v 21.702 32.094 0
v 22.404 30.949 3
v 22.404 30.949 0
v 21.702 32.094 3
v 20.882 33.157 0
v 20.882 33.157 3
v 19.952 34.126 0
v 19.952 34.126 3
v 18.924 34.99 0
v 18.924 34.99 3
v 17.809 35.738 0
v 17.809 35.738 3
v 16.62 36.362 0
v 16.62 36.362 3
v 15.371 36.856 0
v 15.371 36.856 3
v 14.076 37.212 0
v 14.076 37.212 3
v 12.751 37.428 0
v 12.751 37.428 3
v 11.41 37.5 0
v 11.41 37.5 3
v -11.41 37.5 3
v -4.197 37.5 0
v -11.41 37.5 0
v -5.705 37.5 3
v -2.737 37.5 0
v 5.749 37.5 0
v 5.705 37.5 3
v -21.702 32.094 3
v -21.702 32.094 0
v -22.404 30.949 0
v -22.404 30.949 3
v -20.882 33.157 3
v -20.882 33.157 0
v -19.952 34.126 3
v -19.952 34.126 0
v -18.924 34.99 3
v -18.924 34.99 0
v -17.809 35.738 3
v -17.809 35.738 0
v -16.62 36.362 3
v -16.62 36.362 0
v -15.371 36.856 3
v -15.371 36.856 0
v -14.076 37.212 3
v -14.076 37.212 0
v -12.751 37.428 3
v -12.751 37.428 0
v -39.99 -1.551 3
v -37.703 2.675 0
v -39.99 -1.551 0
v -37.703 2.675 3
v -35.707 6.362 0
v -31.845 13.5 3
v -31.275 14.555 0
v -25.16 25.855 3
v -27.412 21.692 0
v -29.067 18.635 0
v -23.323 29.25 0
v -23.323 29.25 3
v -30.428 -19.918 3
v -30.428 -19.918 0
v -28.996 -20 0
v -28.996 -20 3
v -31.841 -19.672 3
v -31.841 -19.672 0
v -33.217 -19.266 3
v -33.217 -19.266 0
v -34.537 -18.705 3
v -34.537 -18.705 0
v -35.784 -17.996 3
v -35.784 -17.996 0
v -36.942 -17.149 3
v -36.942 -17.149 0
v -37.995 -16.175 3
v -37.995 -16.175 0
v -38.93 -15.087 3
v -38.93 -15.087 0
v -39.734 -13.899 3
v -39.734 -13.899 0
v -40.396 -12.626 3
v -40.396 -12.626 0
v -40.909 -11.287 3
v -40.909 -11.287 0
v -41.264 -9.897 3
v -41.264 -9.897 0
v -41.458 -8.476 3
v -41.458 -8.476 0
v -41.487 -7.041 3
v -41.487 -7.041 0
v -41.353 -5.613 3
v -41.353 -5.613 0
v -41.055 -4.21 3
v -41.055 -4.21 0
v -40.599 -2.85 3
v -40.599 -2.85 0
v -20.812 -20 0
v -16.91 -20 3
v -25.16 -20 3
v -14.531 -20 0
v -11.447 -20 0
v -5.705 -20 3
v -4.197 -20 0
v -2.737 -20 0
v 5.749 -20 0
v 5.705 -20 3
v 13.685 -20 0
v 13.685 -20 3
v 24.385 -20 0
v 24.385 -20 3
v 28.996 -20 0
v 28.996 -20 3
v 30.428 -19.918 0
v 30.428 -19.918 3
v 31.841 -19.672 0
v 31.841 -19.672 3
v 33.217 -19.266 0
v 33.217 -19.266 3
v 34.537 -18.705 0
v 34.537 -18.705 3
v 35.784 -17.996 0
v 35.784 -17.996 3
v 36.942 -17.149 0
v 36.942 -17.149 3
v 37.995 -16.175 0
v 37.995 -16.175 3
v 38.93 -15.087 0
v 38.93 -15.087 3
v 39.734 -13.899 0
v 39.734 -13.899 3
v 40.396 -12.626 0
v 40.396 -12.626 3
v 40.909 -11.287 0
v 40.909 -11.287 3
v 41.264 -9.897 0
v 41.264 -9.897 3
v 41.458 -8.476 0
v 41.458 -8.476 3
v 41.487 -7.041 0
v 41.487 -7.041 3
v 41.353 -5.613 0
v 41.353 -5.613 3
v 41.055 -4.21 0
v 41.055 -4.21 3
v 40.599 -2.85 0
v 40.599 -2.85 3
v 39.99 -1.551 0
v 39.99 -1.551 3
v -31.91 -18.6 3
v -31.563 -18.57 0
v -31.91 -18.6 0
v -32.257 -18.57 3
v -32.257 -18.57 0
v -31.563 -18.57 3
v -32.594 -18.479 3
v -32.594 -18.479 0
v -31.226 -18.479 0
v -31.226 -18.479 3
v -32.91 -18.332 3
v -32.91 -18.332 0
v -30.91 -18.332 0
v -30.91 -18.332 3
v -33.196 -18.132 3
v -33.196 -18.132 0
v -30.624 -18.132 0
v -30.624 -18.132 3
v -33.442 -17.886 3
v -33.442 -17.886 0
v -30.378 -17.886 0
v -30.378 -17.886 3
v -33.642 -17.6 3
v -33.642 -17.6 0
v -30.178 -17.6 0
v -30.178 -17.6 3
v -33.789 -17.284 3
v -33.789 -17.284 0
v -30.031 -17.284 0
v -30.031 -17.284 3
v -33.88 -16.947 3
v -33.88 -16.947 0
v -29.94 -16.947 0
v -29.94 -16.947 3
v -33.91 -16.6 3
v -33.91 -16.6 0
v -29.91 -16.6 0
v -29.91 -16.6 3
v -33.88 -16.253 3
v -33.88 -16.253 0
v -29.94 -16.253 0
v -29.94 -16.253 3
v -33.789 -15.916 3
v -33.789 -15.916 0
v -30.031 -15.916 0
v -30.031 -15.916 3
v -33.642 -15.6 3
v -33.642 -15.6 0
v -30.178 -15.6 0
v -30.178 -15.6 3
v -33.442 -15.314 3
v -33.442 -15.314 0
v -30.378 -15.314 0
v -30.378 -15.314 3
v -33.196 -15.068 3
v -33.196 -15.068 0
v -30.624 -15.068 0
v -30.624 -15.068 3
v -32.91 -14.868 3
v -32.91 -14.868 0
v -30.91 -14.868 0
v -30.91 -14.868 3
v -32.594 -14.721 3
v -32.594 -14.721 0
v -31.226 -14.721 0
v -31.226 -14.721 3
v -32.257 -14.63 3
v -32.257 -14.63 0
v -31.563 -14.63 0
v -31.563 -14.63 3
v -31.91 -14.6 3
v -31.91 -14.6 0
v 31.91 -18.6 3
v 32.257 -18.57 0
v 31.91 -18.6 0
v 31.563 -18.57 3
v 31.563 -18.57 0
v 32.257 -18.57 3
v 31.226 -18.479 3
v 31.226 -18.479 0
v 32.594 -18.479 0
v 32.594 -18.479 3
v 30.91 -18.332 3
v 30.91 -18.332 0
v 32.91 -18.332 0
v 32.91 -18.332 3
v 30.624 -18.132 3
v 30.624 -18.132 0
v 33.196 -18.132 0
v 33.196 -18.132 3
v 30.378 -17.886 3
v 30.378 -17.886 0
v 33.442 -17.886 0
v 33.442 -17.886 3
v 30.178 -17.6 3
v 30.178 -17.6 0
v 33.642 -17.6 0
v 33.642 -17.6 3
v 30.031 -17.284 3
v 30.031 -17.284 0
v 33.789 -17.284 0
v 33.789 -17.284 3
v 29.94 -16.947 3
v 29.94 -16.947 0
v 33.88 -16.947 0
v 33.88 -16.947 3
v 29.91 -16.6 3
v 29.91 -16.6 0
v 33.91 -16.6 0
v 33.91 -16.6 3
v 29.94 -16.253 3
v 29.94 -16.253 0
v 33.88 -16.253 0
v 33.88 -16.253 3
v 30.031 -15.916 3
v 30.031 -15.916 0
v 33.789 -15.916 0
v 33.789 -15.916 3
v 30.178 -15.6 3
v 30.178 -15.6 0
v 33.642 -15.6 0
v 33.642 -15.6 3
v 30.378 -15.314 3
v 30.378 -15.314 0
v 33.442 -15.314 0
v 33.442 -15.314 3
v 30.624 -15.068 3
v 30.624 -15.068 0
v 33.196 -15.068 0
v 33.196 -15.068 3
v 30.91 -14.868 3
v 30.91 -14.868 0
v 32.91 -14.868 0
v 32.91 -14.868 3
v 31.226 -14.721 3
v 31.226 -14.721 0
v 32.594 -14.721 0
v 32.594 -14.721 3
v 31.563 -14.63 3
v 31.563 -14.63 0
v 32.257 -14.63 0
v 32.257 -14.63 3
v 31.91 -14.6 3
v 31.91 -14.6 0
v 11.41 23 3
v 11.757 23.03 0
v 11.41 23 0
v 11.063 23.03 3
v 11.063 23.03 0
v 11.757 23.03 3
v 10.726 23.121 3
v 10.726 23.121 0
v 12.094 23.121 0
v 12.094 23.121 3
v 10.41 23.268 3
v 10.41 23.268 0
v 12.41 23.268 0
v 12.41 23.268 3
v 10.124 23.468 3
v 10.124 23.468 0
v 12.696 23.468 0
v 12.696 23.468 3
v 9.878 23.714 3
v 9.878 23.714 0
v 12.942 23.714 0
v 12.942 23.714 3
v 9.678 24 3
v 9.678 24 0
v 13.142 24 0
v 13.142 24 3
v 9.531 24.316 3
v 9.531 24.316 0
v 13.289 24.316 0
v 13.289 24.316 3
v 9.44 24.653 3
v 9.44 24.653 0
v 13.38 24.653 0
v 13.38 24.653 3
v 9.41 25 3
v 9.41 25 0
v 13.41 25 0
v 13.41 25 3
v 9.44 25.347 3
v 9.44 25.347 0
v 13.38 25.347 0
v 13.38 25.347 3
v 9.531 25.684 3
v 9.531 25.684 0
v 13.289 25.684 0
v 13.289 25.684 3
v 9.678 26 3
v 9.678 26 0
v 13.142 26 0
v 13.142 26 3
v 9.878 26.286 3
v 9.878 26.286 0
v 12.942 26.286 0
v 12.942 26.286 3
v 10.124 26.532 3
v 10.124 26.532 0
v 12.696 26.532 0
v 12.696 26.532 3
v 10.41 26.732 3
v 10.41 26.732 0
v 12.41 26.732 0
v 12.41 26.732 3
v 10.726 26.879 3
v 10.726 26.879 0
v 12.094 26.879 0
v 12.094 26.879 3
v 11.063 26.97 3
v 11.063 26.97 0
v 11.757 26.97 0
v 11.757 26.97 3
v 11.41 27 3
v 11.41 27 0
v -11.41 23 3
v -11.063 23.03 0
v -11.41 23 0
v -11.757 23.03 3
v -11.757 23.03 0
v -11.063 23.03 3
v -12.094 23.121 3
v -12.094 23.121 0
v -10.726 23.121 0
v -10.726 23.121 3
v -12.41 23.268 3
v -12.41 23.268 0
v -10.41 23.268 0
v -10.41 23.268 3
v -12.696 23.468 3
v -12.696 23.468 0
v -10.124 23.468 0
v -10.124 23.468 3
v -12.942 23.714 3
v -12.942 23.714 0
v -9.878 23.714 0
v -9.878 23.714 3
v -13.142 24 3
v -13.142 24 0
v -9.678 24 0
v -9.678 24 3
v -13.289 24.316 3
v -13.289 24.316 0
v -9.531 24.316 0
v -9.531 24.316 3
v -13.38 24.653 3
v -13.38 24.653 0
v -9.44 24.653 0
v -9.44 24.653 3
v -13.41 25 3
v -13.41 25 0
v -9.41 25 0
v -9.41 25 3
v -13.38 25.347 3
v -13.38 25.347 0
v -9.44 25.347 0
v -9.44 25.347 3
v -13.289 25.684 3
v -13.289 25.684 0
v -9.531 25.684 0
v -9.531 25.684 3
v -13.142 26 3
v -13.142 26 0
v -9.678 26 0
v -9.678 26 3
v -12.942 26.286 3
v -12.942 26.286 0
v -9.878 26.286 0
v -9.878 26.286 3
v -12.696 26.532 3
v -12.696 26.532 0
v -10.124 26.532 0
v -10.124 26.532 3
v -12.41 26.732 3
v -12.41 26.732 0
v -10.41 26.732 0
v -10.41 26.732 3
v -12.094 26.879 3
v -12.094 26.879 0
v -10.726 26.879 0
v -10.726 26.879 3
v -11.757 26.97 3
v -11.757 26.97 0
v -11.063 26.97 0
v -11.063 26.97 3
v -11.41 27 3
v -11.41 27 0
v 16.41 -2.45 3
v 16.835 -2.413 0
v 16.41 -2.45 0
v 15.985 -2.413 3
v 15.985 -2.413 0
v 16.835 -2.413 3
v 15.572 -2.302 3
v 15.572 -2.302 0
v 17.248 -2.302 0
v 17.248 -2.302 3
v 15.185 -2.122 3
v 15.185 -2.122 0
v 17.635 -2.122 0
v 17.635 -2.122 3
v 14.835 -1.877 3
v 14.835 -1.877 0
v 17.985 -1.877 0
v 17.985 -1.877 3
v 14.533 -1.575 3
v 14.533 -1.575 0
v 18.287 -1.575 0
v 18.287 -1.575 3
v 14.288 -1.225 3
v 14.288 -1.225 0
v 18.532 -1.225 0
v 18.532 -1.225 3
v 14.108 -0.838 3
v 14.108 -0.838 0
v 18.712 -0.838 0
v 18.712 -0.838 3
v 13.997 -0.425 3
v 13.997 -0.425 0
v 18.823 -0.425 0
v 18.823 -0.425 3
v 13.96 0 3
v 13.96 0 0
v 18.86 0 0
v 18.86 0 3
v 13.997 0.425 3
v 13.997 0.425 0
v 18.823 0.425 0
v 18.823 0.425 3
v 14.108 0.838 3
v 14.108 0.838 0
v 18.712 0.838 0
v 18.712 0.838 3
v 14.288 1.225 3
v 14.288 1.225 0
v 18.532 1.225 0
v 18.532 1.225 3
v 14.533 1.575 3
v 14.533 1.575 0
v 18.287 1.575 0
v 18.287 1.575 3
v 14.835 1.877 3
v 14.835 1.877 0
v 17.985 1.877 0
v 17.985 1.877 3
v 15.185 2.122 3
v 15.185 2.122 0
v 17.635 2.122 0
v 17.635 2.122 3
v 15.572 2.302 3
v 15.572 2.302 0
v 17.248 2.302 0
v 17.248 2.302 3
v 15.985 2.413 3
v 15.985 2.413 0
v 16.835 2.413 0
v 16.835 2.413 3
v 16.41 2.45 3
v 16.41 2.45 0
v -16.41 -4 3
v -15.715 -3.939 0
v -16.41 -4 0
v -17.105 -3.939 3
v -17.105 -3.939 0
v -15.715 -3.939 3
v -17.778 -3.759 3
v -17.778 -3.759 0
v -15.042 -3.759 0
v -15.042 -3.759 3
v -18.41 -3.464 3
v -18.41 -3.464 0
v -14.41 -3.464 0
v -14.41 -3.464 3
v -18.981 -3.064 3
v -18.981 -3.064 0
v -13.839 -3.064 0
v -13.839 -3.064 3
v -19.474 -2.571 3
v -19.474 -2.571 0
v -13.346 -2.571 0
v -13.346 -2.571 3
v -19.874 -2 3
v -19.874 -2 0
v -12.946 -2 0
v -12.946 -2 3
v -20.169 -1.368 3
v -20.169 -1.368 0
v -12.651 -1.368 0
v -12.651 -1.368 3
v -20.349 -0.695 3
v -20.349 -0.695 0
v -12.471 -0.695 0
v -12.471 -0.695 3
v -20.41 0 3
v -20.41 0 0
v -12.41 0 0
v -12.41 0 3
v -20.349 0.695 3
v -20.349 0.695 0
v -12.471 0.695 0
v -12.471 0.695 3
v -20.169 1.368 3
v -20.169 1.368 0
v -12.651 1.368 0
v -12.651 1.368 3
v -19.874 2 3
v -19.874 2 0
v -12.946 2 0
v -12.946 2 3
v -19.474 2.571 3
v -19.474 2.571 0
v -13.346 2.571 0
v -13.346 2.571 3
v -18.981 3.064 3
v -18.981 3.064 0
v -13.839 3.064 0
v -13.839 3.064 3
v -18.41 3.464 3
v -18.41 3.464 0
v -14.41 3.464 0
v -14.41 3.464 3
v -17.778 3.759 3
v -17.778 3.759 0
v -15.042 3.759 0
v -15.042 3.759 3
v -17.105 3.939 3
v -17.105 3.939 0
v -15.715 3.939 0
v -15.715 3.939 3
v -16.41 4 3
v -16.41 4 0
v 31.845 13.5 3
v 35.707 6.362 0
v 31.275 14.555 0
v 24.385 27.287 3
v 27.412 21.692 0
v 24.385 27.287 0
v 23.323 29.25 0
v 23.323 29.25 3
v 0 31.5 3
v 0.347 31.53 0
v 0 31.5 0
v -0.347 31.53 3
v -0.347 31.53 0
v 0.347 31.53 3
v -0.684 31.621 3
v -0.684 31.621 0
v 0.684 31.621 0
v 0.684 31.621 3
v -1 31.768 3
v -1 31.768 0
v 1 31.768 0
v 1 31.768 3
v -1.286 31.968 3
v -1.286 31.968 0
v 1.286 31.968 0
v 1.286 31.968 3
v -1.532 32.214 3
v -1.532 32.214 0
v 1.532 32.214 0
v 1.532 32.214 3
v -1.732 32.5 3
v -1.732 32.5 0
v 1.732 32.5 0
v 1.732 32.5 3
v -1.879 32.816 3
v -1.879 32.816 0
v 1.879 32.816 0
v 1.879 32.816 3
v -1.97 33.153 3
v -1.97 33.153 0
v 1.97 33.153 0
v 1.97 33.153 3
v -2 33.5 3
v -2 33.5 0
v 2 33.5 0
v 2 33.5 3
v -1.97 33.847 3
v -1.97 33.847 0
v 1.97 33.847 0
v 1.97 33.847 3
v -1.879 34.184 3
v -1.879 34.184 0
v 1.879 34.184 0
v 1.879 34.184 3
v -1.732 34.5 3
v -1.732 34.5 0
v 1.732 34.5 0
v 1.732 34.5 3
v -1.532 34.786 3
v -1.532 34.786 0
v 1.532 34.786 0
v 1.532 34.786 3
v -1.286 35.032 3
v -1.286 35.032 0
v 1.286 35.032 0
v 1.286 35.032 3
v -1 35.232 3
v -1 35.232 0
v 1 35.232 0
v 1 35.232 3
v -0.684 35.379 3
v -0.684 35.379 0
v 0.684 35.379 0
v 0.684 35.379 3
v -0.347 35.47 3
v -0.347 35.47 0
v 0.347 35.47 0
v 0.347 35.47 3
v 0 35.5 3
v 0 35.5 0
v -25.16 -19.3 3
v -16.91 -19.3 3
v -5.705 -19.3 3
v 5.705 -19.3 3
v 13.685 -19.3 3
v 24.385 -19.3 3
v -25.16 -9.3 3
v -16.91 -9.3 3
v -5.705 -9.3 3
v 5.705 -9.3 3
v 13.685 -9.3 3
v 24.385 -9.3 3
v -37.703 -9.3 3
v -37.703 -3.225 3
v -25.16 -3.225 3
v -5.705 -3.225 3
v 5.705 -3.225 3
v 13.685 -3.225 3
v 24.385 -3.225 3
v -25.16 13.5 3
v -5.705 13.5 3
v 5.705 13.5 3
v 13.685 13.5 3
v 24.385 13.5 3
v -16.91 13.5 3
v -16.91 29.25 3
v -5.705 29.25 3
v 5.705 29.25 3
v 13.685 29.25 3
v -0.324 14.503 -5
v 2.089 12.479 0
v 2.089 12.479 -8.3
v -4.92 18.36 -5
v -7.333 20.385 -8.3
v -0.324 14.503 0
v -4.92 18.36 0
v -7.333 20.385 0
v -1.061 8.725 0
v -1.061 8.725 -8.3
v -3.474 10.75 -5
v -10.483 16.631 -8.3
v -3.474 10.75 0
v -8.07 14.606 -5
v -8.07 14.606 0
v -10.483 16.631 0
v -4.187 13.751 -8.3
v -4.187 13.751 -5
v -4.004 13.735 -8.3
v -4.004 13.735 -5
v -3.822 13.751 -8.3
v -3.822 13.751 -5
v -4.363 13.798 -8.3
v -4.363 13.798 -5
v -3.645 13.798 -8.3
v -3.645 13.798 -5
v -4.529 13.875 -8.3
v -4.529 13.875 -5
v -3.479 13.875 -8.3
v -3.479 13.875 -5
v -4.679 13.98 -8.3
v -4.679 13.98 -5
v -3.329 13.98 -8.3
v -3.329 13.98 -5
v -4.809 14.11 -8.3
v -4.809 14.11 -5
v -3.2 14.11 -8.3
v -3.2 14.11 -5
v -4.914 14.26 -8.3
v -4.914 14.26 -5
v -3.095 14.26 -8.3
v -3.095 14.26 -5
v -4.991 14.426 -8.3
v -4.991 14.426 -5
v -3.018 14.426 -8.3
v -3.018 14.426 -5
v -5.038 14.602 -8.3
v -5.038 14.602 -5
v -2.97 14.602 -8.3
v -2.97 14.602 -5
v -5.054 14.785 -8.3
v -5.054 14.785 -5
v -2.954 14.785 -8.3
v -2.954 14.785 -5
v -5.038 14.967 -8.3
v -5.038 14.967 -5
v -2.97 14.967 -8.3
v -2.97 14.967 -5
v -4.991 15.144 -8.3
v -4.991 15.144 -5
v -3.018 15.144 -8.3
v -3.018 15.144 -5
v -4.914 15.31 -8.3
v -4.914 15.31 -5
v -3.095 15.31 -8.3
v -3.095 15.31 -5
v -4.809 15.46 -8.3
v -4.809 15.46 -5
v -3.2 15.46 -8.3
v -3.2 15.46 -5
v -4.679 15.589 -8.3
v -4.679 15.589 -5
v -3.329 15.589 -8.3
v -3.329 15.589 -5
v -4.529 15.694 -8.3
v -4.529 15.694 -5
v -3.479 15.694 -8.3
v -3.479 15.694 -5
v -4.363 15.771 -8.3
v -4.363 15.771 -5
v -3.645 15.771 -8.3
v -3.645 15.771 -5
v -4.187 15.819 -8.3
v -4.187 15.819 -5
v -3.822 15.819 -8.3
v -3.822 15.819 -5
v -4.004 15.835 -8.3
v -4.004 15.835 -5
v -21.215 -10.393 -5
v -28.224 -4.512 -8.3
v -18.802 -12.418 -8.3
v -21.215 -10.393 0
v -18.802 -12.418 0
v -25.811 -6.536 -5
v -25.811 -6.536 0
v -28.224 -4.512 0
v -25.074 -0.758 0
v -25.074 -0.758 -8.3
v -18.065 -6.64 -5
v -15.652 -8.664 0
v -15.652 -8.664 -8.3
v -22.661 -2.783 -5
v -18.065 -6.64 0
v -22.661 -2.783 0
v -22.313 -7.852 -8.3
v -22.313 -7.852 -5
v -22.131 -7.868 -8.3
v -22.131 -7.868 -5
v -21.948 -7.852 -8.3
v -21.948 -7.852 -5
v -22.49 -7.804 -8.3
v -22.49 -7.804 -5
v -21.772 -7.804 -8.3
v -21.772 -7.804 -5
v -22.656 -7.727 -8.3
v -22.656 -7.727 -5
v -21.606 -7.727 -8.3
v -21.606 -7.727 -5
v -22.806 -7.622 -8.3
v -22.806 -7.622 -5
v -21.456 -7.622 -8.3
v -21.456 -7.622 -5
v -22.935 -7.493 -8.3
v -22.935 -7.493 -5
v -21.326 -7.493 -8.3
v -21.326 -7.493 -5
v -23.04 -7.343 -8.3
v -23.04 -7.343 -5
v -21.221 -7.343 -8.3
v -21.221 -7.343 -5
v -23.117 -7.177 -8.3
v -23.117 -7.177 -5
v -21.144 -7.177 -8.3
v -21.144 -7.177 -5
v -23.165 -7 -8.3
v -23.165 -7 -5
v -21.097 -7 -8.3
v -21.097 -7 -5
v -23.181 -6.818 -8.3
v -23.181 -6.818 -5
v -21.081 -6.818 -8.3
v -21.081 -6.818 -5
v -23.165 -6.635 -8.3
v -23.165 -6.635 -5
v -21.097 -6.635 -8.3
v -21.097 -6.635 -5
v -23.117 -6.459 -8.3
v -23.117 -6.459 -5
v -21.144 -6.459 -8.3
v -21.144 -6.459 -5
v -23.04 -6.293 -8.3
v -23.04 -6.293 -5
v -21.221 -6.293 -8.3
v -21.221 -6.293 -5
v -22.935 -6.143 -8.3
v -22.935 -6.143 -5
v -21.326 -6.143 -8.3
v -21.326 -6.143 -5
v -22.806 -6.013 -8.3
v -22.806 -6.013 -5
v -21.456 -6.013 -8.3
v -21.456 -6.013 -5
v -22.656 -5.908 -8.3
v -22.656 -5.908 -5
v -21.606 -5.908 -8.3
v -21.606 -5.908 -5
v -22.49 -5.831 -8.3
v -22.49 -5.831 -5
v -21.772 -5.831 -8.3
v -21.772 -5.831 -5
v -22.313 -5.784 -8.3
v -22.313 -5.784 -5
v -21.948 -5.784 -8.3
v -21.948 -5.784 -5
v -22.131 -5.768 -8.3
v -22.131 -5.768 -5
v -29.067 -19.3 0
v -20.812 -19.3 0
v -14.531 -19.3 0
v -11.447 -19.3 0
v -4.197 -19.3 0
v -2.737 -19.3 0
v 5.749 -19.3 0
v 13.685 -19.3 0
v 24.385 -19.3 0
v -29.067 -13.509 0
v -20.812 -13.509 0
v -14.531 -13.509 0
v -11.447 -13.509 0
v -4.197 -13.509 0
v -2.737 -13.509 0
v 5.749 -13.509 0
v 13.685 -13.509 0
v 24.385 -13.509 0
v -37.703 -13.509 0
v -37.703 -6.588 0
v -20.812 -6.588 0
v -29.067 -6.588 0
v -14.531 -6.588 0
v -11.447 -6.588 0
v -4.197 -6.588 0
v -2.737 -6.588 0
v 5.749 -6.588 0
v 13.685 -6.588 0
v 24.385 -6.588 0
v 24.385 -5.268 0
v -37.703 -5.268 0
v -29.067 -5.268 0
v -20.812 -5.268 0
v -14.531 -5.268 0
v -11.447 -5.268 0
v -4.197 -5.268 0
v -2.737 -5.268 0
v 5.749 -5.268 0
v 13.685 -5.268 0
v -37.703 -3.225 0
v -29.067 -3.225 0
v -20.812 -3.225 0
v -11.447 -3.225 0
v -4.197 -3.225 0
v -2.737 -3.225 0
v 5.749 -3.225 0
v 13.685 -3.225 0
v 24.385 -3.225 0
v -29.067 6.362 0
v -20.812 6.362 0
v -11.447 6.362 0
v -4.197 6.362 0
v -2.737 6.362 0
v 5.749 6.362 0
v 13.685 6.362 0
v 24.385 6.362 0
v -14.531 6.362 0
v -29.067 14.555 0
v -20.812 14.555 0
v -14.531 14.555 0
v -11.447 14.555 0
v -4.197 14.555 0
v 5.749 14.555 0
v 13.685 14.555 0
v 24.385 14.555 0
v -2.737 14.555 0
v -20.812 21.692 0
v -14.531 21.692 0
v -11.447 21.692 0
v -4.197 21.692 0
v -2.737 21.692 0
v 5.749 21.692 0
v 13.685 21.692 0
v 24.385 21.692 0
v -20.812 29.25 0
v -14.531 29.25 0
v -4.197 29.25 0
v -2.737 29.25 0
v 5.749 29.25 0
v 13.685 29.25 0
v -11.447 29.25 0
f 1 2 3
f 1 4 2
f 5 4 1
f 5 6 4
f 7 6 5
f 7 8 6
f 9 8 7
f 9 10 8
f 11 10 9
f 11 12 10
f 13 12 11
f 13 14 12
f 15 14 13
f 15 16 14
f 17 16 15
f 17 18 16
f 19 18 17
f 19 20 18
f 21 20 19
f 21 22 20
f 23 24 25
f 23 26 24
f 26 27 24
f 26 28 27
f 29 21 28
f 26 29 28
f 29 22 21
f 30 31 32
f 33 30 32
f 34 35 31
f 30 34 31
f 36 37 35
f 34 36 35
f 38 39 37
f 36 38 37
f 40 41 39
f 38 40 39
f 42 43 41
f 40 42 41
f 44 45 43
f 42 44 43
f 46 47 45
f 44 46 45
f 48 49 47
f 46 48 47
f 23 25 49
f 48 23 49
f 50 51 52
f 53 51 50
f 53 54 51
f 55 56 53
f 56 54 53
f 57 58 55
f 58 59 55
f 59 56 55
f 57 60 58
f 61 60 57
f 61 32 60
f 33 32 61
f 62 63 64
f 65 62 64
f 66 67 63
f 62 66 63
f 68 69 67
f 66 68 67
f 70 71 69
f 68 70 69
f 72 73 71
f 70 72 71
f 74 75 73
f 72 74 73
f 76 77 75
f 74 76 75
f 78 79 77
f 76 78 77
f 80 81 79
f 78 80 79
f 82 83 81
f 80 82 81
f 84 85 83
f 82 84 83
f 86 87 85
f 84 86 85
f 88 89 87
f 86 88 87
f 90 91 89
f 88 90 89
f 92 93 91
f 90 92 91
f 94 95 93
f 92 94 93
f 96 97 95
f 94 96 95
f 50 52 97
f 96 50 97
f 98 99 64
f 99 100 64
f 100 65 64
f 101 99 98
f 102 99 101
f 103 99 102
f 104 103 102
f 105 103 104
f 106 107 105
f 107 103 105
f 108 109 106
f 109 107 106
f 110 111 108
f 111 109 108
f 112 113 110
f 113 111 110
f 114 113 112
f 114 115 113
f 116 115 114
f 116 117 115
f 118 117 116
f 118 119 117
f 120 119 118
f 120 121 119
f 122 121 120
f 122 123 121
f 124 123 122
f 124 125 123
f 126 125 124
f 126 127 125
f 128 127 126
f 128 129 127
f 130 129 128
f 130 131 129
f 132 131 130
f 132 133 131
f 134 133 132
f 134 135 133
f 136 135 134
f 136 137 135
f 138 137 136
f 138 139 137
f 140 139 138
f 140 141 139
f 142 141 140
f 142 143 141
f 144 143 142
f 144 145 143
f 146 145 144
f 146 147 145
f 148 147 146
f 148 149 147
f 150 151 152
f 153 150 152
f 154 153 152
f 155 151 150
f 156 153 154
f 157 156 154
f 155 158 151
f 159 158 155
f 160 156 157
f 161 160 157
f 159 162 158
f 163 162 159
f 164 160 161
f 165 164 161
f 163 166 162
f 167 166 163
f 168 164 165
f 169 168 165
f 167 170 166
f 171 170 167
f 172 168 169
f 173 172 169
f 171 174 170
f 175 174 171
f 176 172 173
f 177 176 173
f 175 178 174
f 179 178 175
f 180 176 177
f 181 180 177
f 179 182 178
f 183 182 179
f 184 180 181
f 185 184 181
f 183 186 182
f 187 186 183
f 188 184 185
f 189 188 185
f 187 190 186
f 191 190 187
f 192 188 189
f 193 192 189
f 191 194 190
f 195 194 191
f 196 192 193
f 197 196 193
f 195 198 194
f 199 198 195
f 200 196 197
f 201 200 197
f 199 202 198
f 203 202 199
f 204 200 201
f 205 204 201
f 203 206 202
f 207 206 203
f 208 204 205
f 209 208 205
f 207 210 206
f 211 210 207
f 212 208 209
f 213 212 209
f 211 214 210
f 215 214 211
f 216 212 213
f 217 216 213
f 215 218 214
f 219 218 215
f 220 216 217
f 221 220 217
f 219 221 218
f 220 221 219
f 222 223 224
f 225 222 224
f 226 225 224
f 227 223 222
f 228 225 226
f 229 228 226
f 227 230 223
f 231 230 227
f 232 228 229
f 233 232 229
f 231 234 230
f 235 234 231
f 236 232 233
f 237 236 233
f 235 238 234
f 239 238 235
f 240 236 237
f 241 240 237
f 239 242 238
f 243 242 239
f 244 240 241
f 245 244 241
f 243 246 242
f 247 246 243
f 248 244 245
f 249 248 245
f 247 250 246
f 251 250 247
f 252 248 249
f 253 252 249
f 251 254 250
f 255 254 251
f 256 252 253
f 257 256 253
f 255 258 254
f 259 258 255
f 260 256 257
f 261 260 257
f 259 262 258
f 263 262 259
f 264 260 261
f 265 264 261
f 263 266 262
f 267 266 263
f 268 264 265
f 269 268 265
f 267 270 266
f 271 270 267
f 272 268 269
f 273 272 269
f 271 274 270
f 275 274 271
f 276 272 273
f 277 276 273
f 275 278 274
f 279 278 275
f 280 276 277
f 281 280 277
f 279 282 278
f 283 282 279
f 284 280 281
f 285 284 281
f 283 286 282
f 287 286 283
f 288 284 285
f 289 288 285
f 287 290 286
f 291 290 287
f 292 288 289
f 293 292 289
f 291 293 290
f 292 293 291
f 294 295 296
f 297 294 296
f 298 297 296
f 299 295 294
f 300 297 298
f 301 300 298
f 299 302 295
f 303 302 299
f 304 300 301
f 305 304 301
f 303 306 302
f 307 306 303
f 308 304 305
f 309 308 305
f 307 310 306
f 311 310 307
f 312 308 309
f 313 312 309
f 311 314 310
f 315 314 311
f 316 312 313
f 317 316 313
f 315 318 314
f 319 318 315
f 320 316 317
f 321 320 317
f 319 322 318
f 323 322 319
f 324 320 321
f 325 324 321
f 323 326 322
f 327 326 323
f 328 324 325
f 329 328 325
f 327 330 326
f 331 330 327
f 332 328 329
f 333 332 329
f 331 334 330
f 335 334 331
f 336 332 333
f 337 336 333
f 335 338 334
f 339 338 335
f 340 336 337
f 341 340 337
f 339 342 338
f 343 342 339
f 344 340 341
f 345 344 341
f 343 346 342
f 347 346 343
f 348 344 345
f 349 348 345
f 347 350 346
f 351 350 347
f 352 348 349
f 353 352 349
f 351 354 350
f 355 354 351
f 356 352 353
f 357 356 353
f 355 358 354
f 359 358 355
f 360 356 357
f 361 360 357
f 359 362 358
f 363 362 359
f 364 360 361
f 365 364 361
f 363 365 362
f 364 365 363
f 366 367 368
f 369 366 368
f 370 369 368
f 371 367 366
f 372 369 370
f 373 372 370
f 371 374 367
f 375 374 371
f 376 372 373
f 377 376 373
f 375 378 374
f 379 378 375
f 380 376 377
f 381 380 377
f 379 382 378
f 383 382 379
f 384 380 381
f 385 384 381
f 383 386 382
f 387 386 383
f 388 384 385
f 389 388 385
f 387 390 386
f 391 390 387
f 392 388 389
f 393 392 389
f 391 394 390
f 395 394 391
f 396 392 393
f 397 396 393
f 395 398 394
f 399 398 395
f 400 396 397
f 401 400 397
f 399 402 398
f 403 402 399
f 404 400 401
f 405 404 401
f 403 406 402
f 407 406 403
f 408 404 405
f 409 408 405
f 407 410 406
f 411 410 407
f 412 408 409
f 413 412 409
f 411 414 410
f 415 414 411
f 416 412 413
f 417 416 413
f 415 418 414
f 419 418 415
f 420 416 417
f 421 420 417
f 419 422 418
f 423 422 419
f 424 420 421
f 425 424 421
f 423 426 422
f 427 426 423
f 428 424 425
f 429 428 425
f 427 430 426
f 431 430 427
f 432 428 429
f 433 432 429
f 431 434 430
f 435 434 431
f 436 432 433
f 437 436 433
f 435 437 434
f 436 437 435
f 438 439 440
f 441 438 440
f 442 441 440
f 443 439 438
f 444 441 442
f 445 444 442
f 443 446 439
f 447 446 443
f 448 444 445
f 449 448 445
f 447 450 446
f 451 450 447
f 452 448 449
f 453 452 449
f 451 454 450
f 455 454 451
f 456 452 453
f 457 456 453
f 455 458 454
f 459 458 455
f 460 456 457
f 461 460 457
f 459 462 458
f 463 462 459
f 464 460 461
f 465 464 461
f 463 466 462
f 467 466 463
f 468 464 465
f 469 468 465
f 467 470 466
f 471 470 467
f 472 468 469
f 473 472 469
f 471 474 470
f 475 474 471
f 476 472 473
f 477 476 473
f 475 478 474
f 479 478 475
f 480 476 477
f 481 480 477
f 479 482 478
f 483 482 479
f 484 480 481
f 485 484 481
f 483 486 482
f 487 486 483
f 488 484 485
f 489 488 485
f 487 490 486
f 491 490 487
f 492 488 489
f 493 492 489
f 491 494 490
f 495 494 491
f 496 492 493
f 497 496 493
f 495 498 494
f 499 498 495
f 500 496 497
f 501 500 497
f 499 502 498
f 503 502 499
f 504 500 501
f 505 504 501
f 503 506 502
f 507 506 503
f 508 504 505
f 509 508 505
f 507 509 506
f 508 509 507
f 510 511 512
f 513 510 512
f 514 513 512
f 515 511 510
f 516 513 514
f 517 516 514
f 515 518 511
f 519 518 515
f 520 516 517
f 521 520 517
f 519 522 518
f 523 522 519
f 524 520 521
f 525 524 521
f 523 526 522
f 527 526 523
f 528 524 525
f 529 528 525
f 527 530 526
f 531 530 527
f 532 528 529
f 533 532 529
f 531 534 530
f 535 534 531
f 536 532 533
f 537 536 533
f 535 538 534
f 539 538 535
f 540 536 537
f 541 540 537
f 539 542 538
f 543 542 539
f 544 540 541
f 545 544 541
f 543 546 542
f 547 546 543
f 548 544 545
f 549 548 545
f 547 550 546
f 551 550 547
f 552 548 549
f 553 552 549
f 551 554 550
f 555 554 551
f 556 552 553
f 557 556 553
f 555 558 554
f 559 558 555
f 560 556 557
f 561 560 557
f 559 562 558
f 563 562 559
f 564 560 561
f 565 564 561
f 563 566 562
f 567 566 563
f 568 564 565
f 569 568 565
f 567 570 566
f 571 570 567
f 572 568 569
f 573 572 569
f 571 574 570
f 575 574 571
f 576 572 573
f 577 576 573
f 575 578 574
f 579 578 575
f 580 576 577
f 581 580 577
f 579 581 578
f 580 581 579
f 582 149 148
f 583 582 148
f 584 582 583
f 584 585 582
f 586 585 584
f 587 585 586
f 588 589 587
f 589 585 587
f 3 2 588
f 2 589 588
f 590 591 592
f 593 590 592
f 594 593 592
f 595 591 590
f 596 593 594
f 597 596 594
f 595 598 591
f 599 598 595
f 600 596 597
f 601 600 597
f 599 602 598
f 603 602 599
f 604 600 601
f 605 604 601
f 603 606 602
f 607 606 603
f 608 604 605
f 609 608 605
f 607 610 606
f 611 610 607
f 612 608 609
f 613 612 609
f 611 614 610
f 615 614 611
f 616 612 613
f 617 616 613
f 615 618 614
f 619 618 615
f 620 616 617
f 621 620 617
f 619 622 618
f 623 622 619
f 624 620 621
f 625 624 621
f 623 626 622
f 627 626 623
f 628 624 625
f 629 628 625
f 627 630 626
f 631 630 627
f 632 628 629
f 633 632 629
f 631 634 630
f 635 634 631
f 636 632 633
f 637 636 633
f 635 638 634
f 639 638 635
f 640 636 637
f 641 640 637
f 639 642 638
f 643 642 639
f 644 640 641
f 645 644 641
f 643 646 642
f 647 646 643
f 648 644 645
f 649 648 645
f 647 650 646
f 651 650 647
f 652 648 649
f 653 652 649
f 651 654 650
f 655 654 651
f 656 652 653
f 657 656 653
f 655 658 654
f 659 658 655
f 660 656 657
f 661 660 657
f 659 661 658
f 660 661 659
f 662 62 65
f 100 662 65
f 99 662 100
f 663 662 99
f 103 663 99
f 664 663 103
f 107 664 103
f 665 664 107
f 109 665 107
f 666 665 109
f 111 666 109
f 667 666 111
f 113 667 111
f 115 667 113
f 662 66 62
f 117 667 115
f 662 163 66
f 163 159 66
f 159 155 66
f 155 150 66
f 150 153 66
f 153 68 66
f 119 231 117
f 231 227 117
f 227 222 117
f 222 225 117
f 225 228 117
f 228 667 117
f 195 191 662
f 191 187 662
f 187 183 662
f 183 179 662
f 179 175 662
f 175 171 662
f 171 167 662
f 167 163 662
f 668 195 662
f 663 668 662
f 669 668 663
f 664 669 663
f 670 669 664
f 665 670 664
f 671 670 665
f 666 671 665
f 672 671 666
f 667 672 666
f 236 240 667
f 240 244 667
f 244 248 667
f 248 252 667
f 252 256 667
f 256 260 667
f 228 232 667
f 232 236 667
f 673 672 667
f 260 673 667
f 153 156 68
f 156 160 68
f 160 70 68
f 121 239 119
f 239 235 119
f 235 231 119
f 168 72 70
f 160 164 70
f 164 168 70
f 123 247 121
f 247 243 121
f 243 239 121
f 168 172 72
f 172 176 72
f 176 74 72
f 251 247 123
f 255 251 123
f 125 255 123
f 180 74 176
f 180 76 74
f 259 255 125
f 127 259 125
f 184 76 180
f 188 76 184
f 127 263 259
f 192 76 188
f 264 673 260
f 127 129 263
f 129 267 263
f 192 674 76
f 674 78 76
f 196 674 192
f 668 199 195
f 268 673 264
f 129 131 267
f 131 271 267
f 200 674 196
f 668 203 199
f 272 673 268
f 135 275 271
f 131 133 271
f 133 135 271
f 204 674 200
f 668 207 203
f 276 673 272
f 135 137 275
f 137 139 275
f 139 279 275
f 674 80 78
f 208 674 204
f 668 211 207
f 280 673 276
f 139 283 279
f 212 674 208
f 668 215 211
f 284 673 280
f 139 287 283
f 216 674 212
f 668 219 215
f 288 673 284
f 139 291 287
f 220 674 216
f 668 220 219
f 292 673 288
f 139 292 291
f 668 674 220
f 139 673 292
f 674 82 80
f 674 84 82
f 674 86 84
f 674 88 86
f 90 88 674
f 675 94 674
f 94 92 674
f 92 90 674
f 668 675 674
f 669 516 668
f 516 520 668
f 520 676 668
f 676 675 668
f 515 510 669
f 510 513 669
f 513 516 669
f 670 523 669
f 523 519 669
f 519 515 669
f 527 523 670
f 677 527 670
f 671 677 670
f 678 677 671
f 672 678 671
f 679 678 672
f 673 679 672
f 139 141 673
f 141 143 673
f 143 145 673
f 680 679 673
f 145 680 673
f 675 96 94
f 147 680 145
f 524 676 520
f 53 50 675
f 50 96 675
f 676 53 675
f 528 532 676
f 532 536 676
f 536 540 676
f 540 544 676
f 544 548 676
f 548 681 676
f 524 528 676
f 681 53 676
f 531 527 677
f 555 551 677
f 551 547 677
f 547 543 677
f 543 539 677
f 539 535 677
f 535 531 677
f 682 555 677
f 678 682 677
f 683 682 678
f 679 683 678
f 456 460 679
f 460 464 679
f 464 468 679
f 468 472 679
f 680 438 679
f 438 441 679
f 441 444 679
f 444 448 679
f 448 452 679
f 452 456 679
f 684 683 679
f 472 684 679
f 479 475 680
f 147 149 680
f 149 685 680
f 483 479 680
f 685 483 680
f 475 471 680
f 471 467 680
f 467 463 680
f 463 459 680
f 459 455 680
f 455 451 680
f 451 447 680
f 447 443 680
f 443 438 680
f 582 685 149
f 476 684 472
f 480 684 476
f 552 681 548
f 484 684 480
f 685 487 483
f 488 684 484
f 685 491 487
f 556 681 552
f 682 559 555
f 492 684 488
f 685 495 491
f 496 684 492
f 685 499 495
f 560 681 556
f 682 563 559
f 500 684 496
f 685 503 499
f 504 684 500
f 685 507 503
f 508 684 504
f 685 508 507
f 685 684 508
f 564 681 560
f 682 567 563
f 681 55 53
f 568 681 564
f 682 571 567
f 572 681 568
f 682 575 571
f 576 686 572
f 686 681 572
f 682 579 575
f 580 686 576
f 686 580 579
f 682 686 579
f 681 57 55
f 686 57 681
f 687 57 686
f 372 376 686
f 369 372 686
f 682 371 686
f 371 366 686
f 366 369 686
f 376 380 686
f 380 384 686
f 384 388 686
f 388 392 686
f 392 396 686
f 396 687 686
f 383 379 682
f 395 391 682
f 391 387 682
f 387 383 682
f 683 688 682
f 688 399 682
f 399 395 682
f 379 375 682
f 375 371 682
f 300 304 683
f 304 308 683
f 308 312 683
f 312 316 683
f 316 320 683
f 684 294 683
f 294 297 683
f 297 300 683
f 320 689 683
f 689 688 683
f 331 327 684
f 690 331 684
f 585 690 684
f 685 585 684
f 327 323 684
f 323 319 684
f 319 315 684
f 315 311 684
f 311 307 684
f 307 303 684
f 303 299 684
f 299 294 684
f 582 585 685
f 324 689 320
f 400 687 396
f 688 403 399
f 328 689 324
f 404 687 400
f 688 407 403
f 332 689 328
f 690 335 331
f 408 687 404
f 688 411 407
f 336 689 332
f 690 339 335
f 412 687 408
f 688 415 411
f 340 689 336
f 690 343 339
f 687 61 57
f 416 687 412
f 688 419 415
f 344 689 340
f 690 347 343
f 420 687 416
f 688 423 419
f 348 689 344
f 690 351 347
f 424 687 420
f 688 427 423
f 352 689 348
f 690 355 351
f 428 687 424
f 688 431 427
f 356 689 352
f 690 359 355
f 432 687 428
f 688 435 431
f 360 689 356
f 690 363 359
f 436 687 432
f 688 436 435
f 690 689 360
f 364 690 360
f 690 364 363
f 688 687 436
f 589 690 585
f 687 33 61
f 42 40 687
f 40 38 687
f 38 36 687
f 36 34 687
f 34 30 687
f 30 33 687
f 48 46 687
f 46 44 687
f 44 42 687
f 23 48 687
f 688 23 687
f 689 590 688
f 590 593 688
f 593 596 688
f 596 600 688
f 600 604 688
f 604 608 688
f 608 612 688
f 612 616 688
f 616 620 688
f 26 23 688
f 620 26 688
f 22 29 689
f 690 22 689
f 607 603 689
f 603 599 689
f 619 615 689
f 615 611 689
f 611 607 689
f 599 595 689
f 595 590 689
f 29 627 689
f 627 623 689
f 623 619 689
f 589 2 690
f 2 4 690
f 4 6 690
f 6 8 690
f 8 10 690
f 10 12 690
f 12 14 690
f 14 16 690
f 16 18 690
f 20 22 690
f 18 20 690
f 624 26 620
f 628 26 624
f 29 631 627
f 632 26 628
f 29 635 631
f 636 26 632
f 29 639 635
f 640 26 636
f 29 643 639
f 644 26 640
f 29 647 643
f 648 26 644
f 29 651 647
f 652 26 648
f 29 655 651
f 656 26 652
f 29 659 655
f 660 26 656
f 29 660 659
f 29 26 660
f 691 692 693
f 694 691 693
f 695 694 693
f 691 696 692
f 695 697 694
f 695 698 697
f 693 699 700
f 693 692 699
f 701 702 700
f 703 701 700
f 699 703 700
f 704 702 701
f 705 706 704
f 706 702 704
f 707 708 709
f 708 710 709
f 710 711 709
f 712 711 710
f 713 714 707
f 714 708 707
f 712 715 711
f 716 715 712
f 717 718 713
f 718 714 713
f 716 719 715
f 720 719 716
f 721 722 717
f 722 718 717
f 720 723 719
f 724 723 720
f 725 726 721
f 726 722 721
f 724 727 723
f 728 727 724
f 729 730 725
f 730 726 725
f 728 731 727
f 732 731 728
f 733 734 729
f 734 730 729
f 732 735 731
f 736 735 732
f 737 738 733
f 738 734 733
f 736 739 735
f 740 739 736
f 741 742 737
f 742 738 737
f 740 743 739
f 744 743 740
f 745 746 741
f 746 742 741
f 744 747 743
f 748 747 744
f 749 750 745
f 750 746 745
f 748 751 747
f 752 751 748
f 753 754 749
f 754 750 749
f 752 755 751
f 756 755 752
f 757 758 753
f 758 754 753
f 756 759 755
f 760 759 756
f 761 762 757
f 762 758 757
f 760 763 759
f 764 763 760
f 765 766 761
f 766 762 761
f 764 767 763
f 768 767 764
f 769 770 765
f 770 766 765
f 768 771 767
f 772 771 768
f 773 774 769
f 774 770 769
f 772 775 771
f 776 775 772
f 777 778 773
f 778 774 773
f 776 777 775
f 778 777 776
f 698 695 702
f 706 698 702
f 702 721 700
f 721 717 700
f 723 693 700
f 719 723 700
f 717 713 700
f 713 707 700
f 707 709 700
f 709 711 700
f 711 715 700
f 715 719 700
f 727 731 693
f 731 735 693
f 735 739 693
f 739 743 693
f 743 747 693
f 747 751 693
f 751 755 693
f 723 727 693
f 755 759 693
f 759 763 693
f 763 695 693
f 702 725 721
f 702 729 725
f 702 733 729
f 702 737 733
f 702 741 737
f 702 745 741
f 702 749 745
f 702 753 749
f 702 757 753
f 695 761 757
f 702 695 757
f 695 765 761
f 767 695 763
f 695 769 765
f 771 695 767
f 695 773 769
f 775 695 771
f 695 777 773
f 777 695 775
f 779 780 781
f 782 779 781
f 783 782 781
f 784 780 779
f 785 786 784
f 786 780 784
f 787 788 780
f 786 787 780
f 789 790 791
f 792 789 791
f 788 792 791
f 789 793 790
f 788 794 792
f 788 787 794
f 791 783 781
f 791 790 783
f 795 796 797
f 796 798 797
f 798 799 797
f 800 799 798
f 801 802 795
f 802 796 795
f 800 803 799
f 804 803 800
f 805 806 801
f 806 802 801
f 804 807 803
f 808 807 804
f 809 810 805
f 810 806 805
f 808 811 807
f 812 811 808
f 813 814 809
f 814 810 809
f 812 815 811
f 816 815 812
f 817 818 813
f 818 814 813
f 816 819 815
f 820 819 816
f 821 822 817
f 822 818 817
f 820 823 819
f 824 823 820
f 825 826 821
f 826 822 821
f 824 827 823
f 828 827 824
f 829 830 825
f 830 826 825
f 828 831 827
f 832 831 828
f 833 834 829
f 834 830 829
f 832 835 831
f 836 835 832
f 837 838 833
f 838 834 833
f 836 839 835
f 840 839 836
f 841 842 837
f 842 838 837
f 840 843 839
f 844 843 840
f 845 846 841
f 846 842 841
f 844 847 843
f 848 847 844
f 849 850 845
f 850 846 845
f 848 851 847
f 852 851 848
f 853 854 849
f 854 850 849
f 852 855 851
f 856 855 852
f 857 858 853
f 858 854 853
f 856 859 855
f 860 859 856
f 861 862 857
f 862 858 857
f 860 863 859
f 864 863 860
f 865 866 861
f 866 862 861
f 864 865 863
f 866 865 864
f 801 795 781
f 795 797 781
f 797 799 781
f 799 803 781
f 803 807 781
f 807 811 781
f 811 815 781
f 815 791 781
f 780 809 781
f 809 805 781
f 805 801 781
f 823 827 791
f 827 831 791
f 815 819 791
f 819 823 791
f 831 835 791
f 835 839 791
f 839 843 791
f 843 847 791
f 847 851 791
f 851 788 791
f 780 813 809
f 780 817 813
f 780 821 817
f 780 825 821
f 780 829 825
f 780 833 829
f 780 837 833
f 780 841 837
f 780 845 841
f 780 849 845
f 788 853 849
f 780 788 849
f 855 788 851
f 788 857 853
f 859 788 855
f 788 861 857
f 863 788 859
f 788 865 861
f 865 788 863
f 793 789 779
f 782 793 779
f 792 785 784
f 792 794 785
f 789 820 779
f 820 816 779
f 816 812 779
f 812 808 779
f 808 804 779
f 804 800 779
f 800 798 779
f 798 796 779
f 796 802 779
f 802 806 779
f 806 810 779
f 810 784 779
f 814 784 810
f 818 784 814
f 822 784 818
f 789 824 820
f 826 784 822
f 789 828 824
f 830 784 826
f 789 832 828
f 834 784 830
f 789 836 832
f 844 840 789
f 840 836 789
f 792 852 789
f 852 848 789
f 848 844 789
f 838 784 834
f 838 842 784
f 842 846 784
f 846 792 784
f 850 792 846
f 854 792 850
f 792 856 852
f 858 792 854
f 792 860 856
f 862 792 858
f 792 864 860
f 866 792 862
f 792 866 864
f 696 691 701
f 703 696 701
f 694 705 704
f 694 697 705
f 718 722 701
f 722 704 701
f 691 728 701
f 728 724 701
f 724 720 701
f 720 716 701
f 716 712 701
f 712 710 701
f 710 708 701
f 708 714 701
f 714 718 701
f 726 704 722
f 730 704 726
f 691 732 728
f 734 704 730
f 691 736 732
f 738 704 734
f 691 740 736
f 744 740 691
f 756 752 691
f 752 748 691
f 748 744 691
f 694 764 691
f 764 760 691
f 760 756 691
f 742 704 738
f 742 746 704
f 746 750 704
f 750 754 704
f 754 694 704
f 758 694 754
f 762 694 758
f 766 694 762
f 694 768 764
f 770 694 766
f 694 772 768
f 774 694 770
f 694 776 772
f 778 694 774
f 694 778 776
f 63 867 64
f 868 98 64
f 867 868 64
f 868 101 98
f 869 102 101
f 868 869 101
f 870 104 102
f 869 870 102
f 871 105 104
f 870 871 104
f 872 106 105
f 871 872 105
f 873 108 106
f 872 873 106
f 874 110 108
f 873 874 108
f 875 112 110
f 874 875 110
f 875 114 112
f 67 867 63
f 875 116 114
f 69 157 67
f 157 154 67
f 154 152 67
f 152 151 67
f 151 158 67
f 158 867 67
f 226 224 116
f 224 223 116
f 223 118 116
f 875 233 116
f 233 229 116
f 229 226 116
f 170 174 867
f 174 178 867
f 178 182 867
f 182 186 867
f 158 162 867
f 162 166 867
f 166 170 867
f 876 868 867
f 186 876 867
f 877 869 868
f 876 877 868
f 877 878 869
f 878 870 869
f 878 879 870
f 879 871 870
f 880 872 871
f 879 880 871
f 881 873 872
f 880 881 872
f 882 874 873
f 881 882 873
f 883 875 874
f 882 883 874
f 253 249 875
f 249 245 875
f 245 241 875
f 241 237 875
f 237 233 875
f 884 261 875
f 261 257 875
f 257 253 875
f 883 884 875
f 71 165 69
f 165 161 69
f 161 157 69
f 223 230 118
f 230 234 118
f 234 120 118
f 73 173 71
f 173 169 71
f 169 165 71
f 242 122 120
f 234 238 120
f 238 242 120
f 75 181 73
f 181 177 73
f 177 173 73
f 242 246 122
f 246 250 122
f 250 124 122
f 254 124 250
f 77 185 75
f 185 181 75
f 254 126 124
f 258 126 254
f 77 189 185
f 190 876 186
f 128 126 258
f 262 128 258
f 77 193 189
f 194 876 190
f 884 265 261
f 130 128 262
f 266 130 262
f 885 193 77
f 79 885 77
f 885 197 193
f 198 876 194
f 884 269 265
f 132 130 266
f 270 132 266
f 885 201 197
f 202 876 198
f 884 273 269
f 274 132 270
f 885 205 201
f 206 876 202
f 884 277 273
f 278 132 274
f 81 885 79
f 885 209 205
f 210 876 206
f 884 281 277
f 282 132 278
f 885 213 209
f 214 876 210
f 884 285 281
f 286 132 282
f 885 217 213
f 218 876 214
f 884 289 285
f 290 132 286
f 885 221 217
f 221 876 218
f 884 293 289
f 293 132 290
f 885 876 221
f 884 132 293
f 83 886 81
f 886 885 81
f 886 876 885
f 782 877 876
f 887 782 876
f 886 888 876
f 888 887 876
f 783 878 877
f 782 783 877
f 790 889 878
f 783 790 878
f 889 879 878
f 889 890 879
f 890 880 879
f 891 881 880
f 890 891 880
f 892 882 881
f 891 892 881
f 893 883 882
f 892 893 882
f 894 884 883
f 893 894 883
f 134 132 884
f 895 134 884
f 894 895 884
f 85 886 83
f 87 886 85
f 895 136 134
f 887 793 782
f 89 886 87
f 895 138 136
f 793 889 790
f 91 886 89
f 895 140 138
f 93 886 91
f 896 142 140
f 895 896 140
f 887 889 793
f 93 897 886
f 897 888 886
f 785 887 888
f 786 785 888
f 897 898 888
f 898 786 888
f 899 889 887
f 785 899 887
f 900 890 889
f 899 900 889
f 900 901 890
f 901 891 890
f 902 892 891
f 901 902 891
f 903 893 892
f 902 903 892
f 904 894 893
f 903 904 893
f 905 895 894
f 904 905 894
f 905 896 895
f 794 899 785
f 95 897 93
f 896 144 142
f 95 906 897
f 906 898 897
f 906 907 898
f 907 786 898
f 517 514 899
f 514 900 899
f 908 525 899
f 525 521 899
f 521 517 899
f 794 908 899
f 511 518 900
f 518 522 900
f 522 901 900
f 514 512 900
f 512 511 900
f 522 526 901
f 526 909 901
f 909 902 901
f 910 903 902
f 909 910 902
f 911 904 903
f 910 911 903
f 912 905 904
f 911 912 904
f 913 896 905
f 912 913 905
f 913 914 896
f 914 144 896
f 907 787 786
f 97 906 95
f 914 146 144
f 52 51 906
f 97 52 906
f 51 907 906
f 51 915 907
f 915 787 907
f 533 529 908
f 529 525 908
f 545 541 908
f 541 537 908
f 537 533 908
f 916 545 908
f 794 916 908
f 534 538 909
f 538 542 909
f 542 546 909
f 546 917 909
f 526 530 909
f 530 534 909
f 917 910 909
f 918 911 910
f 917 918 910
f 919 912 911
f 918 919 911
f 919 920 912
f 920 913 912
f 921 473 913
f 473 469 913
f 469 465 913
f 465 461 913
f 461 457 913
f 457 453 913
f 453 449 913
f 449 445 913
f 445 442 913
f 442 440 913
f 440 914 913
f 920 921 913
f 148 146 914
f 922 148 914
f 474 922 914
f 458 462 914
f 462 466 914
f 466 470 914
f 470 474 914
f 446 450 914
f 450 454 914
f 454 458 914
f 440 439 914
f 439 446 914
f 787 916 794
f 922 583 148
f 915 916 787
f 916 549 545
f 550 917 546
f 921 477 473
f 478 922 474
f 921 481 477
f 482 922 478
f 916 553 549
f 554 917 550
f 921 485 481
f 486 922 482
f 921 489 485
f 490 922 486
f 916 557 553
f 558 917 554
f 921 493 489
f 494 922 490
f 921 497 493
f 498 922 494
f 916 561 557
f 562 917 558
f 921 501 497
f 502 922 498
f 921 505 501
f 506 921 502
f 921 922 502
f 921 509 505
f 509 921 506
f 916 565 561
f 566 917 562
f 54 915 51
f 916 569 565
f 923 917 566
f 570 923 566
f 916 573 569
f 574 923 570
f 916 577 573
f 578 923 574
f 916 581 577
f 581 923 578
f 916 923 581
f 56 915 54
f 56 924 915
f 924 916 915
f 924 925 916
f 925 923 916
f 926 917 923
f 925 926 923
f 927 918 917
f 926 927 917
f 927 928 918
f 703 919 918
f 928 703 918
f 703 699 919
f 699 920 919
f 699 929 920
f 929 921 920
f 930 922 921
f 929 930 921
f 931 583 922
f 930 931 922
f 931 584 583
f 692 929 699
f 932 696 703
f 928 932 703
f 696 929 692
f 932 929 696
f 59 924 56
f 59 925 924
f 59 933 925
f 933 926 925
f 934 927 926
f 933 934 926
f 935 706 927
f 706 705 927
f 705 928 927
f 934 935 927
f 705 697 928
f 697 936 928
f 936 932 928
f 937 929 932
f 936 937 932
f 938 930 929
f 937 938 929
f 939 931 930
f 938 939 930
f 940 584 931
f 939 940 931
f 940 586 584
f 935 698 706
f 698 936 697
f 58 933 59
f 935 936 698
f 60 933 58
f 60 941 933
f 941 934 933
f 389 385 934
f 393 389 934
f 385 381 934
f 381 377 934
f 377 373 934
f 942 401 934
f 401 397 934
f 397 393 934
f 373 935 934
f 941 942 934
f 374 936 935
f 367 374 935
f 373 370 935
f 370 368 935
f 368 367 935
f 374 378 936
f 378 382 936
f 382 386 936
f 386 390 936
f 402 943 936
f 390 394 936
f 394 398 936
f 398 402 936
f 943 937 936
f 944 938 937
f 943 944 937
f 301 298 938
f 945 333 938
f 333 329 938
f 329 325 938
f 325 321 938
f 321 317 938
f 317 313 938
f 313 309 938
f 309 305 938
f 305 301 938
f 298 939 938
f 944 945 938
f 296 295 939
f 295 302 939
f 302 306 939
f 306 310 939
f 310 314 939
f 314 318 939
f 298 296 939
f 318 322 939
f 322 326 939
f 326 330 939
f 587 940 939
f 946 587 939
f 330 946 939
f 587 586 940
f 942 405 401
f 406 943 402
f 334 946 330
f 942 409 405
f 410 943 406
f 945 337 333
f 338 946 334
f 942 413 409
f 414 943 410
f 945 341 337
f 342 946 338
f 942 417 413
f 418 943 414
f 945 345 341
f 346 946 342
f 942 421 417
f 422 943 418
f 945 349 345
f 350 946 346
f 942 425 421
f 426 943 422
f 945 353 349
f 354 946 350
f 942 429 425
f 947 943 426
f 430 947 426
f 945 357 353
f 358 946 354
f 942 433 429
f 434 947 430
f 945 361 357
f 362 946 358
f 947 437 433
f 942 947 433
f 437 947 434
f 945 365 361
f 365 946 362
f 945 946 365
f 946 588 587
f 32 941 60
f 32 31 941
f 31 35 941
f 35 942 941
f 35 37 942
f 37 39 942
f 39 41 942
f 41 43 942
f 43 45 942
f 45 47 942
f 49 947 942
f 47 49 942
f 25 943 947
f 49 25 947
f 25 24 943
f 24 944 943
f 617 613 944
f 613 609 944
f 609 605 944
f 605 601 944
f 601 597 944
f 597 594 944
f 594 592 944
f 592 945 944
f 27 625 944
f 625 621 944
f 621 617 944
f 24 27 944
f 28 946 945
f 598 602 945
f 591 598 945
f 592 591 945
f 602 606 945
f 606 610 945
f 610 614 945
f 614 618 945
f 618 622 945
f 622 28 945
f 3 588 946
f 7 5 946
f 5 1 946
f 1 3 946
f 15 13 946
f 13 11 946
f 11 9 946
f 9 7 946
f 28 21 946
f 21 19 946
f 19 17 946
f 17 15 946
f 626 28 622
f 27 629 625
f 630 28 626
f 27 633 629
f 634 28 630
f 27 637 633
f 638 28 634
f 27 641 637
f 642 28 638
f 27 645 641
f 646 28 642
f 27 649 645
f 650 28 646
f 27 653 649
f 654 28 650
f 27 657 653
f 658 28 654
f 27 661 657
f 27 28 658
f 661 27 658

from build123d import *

# Parameters (mm, degrees)
SKETCH1_R           = 4
SKETCH1_R_2         = 2.45
SKETCH1_R_3         = 2
BOSS_EXTRUDE1_DEPTH = 3
SKETCH2_R           = 1.05
BOSS_EXTRUDE2_DEPTH = 8.3
SKETCH2_3_R         = 1.05
CUT_EXTRUDE1_DEPTH  = 5


with BuildPart() as part:
    # Sketch1 → Boss-Extrude1 (new body)
    with BuildSketch(Plane.XY):
        with BuildLine():
            ThreePointArc((-11.41, 37.5), (-17.8088531, 35.73800163), (-22.403743203, 30.948748641))
            Line((-22.403743203, 30.948748641), (-39.989594287, -1.551251359))
            ThreePointArc((-39.989594287, -1.551251359), (-39.733852714, -13.8988531), (-28.995851084, -20))
            Line((-28.995851084, -20), (28.995851084, -20))
            ThreePointArc((28.995851084, -20), (39.733852714, -13.8988531), (39.989594287, -1.551251359))
            Line((39.989594287, -1.551251359), (22.403743203, 30.948748641))
            ThreePointArc((22.403743203, 30.948748641), (17.8088531, 35.73800163), (11.41, 37.5))
            Line((11.41, 37.5), (-11.41, 37.5))
        make_face()
        with Locations((-16.41, 0)):
            Circle(SKETCH1_R, mode=Mode.SUBTRACT)
        with Locations((16.41, 0)):
            Circle(SKETCH1_R_2, mode=Mode.SUBTRACT)
        with Locations((-11.41, 25)):
            Circle(SKETCH1_R_3, mode=Mode.SUBTRACT)
        with Locations((11.41, 25)):
            Circle(SKETCH1_R_3, mode=Mode.SUBTRACT)
        with Locations((0, 33.5)):
            Circle(SKETCH1_R_3, mode=Mode.SUBTRACT)
        with Locations((31.91, -16.6)):
            Circle(SKETCH1_R_3, mode=Mode.SUBTRACT)
        with Locations((-31.91, -16.6)):
            Circle(SKETCH1_R_3, mode=Mode.SUBTRACT)
    extrude(amount=BOSS_EXTRUDE1_DEPTH)

    # Sketch2 → Boss-Extrude2 (add)
    # profile 1 of 2: a face of its own
    with BuildSketch(Plane(origin=(0, 0, 0), x_dir=(-1, 0, 0), z_dir=(0, 0, -1))):
        Polygon((-2.088967553, 12.478509505), (1.060691735, 8.724891734), (10.483038385, 16.631179333), (7.333379097, 20.384797104), align=None)
        with Locations((4.004199133, 14.784657752)):
            Circle(SKETCH2_R, mode=Mode.SUBTRACT)
    # profile 2 of 2: a face of its own
    with BuildSketch(Plane(origin=(0, 0, 0), x_dir=(-1, 0, 0), z_dir=(0, 0, -1))):
        Polygon((15.651970474, -8.664317125), (18.801629762, -12.417934896), (28.223976412, -4.511647297), (25.074317125, -0.758029526), align=None)
        with Locations((22.130809726, -6.817795544)):
            Circle(SKETCH2_R, mode=Mode.SUBTRACT)
    extrude(amount=BOSS_EXTRUDE2_DEPTH)

    # Sketch2<3> → Cut-Extrude1 (cut)
    # profile 1 of 2: a face of its own
    with BuildSketch(Plane(origin=(0, 0, 0), x_dir=(-1, 0, 0), z_dir=(0, 0, -1))):
        Polygon((0.324072443, 14.503290476), (3.47373173, 10.749672705), (8.069998389, 14.606398363), (4.920339102, 18.360016134), align=None)
        with Locations((4.004199133, 14.784657752)):
            Circle(SKETCH2_3_R, mode=Mode.SUBTRACT)
    # profile 2 of 2: a face of its own
    with BuildSketch(Plane(origin=(0, 0, 0), x_dir=(-1, 0, 0), z_dir=(0, 0, -1))):
        Polygon((22.661277129, -2.782810496), (18.06501047, -6.639536154), (21.214669758, -10.393153926), (25.810936416, -6.536428267), align=None)
        with Locations((22.130809726, -6.817795544)):
            Circle(SKETCH2_3_R, mode=Mode.SUBTRACT)
    extrude(amount=CUT_EXTRUDE1_DEPTH, mode=Mode.SUBTRACT)


solid = part.part
